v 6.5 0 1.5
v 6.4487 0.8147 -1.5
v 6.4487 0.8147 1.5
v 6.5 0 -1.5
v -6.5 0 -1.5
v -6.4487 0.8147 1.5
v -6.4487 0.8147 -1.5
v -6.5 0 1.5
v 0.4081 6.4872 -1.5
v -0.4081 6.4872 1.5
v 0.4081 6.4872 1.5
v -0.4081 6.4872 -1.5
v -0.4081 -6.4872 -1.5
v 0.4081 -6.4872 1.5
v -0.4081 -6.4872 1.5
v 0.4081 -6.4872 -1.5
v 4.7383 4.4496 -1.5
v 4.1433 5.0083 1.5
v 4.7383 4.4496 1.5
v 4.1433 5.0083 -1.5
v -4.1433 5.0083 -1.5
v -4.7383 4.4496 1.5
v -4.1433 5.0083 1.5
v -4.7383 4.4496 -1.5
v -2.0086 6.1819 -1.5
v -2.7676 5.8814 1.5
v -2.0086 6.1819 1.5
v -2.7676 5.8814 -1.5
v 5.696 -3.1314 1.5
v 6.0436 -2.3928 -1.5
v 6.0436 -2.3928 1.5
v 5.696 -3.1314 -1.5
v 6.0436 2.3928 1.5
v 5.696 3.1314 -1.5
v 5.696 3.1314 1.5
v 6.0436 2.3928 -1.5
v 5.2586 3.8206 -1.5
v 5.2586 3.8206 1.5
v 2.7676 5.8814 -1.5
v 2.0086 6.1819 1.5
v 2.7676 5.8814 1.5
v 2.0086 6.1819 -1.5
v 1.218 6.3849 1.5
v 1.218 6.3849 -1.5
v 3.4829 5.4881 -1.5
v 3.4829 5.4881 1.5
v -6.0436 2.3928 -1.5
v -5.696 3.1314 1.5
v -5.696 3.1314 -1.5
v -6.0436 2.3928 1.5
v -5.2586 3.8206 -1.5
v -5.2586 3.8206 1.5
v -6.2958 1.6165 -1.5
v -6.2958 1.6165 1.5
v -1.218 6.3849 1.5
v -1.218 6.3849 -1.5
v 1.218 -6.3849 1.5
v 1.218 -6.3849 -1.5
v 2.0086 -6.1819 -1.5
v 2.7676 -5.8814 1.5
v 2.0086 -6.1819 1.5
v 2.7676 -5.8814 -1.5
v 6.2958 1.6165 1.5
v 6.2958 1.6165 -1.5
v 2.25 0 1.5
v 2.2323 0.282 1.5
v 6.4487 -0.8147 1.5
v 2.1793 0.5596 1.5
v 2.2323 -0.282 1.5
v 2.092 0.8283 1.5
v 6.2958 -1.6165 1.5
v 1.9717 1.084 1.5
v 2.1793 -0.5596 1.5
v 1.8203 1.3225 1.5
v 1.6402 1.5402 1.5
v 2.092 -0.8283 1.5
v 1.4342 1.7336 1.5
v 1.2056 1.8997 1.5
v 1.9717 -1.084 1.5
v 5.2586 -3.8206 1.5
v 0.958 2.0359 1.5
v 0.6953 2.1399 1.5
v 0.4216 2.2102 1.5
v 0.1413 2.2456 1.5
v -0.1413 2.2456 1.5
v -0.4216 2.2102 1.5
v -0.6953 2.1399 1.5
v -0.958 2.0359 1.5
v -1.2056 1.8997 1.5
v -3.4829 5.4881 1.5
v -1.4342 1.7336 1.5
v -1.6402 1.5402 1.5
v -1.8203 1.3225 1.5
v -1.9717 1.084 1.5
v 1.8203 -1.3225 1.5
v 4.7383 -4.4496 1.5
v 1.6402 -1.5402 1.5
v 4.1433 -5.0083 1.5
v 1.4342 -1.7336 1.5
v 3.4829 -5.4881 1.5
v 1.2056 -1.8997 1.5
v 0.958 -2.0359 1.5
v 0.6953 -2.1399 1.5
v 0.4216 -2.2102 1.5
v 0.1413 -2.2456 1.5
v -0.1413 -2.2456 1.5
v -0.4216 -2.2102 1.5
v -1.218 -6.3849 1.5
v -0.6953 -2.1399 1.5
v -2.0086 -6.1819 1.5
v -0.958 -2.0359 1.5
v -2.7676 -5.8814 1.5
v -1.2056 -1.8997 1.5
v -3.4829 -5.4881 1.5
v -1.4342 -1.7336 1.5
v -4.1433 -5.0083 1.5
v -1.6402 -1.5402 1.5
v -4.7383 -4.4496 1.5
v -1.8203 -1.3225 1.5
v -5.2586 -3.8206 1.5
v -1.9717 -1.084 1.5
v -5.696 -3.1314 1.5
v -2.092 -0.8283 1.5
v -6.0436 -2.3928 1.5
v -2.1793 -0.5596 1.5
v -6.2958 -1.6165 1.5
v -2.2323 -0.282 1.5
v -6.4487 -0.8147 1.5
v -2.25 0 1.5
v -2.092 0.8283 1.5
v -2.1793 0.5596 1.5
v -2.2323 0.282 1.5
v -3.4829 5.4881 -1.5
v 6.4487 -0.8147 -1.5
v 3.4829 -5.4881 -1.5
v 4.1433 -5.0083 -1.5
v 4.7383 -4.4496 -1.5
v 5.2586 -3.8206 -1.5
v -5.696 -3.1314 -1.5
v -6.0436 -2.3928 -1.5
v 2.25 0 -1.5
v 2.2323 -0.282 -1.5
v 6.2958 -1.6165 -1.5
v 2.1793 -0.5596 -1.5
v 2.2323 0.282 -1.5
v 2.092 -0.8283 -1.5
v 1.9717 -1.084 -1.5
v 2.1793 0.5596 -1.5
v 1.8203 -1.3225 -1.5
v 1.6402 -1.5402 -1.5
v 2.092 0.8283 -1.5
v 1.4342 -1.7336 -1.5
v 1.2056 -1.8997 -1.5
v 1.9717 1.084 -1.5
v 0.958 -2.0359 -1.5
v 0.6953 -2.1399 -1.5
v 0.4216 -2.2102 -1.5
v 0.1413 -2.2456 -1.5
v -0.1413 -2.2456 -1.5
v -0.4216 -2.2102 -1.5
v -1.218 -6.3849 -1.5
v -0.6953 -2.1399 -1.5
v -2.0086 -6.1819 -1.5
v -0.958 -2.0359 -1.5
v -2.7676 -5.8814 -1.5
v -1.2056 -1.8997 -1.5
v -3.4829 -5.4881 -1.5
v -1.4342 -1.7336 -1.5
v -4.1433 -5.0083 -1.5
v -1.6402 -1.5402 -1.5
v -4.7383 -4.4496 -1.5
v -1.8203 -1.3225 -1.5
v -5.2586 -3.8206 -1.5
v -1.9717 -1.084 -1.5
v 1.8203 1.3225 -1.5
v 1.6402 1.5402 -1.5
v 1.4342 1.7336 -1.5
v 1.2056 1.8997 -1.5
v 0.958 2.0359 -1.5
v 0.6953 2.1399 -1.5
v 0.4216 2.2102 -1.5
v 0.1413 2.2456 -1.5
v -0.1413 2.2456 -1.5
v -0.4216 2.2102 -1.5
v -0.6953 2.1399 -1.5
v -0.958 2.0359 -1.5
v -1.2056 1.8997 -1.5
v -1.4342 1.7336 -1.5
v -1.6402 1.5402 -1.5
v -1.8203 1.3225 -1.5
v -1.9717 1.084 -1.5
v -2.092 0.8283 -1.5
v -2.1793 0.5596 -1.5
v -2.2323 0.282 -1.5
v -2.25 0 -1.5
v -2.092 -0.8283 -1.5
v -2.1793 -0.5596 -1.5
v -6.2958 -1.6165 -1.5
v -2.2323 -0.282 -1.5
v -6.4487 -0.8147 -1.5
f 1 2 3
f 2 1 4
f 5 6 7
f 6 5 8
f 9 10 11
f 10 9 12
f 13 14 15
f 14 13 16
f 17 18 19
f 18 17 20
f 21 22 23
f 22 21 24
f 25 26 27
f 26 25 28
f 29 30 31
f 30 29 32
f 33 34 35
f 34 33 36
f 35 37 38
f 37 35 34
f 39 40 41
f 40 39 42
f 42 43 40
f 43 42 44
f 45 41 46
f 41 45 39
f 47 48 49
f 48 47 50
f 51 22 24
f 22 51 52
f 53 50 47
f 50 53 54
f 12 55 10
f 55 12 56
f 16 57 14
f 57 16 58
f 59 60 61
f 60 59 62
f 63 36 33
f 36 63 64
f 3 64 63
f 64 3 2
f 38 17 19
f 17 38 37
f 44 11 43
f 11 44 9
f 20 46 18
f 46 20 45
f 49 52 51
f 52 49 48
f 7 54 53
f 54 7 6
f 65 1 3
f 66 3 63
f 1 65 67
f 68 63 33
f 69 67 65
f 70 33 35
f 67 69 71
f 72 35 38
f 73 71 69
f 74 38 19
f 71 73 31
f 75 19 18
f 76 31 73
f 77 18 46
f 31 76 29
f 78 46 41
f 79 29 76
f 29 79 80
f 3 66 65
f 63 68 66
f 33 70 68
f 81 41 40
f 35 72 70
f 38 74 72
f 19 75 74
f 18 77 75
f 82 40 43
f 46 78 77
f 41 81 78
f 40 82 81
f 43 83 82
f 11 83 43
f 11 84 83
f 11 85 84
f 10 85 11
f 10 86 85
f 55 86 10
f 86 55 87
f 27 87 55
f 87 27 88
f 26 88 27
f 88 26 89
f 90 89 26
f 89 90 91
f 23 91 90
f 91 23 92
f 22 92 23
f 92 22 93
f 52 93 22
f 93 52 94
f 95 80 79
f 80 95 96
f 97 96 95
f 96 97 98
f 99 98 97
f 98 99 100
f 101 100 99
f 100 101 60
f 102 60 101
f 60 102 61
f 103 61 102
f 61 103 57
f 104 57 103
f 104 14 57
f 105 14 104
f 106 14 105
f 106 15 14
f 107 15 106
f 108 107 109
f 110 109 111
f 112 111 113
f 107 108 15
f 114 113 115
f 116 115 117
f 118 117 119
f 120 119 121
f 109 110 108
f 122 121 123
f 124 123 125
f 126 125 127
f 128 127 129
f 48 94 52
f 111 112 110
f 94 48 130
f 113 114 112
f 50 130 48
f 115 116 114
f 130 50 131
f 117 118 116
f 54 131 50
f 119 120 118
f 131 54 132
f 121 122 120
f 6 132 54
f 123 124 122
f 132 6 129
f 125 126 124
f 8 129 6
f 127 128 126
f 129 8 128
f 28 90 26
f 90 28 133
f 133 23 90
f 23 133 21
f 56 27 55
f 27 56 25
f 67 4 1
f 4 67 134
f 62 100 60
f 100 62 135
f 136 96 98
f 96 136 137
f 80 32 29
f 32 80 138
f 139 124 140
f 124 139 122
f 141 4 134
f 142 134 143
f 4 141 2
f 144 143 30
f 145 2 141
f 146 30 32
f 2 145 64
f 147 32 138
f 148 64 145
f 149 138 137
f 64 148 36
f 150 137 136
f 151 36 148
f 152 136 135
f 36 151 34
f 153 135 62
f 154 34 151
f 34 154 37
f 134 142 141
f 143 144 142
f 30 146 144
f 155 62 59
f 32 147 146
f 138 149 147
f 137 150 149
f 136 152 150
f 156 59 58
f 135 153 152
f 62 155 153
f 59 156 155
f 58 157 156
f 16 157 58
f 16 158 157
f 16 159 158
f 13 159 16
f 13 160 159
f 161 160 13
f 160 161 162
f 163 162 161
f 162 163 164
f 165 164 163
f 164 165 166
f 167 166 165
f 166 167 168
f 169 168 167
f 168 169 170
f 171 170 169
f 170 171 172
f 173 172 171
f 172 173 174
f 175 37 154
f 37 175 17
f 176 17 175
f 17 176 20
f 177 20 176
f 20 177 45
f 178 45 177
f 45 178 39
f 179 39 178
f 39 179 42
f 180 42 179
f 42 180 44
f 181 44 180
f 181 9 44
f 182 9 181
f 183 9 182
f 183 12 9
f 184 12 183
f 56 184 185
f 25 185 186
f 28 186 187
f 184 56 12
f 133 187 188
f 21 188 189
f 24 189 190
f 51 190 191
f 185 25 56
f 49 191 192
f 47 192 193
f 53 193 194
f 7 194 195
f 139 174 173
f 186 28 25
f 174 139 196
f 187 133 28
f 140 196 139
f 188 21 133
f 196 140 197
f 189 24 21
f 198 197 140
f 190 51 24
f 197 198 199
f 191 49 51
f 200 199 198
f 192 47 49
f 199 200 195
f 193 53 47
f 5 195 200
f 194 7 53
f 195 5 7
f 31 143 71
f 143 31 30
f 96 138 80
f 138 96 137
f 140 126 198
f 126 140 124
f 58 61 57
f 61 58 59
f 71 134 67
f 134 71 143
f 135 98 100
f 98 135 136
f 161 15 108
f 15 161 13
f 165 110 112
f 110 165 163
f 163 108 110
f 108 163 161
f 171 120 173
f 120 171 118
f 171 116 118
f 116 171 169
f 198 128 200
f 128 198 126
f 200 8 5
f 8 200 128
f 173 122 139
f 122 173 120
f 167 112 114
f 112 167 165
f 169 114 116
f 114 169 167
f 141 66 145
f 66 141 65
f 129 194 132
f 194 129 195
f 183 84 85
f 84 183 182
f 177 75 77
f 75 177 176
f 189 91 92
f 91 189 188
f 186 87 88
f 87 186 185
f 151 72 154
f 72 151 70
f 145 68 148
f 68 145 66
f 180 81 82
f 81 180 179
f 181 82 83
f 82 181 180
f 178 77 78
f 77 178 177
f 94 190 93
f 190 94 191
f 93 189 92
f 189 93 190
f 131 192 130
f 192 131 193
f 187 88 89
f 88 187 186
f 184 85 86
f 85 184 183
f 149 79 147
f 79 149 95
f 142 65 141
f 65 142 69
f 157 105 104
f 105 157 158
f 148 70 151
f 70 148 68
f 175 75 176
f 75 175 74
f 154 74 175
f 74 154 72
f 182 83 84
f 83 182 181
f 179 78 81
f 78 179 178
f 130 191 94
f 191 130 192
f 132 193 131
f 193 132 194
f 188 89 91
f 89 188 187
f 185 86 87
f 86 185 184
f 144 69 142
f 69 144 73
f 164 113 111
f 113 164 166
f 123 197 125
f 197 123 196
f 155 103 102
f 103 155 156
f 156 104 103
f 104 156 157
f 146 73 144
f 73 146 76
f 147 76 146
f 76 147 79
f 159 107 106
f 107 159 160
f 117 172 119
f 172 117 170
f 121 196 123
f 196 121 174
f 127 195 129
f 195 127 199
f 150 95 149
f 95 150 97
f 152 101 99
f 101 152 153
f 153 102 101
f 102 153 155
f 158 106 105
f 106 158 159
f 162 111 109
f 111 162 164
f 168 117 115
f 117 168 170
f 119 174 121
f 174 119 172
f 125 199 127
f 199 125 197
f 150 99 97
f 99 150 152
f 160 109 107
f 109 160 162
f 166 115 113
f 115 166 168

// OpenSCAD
$fn = 50;


difference() {
	union() {
		translate(v = [0, 0, -1.5000000000]) {
			cylinder(h = 3, r = 6.5000000000);
		}
	}
	union() {
		translate(v = [0, 0, -100.0000000000]) {
			cylinder(h = 200, r = 2.2500000000);
		}
	}
}
